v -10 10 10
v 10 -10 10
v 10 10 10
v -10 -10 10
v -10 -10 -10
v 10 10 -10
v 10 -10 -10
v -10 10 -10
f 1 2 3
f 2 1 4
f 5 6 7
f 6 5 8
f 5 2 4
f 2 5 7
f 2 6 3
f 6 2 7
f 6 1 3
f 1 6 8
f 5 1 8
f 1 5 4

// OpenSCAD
// cube.scad
// Example model. You can use shared config/modules like:
// include <defaults.scad>
// use <fillets.scad>
// use <holes.scad>
// use <profiles.scad>
cube_size = 20;   // change this → automatic rebuild

cube([cube_size, cube_size, cube_size], center = true);
